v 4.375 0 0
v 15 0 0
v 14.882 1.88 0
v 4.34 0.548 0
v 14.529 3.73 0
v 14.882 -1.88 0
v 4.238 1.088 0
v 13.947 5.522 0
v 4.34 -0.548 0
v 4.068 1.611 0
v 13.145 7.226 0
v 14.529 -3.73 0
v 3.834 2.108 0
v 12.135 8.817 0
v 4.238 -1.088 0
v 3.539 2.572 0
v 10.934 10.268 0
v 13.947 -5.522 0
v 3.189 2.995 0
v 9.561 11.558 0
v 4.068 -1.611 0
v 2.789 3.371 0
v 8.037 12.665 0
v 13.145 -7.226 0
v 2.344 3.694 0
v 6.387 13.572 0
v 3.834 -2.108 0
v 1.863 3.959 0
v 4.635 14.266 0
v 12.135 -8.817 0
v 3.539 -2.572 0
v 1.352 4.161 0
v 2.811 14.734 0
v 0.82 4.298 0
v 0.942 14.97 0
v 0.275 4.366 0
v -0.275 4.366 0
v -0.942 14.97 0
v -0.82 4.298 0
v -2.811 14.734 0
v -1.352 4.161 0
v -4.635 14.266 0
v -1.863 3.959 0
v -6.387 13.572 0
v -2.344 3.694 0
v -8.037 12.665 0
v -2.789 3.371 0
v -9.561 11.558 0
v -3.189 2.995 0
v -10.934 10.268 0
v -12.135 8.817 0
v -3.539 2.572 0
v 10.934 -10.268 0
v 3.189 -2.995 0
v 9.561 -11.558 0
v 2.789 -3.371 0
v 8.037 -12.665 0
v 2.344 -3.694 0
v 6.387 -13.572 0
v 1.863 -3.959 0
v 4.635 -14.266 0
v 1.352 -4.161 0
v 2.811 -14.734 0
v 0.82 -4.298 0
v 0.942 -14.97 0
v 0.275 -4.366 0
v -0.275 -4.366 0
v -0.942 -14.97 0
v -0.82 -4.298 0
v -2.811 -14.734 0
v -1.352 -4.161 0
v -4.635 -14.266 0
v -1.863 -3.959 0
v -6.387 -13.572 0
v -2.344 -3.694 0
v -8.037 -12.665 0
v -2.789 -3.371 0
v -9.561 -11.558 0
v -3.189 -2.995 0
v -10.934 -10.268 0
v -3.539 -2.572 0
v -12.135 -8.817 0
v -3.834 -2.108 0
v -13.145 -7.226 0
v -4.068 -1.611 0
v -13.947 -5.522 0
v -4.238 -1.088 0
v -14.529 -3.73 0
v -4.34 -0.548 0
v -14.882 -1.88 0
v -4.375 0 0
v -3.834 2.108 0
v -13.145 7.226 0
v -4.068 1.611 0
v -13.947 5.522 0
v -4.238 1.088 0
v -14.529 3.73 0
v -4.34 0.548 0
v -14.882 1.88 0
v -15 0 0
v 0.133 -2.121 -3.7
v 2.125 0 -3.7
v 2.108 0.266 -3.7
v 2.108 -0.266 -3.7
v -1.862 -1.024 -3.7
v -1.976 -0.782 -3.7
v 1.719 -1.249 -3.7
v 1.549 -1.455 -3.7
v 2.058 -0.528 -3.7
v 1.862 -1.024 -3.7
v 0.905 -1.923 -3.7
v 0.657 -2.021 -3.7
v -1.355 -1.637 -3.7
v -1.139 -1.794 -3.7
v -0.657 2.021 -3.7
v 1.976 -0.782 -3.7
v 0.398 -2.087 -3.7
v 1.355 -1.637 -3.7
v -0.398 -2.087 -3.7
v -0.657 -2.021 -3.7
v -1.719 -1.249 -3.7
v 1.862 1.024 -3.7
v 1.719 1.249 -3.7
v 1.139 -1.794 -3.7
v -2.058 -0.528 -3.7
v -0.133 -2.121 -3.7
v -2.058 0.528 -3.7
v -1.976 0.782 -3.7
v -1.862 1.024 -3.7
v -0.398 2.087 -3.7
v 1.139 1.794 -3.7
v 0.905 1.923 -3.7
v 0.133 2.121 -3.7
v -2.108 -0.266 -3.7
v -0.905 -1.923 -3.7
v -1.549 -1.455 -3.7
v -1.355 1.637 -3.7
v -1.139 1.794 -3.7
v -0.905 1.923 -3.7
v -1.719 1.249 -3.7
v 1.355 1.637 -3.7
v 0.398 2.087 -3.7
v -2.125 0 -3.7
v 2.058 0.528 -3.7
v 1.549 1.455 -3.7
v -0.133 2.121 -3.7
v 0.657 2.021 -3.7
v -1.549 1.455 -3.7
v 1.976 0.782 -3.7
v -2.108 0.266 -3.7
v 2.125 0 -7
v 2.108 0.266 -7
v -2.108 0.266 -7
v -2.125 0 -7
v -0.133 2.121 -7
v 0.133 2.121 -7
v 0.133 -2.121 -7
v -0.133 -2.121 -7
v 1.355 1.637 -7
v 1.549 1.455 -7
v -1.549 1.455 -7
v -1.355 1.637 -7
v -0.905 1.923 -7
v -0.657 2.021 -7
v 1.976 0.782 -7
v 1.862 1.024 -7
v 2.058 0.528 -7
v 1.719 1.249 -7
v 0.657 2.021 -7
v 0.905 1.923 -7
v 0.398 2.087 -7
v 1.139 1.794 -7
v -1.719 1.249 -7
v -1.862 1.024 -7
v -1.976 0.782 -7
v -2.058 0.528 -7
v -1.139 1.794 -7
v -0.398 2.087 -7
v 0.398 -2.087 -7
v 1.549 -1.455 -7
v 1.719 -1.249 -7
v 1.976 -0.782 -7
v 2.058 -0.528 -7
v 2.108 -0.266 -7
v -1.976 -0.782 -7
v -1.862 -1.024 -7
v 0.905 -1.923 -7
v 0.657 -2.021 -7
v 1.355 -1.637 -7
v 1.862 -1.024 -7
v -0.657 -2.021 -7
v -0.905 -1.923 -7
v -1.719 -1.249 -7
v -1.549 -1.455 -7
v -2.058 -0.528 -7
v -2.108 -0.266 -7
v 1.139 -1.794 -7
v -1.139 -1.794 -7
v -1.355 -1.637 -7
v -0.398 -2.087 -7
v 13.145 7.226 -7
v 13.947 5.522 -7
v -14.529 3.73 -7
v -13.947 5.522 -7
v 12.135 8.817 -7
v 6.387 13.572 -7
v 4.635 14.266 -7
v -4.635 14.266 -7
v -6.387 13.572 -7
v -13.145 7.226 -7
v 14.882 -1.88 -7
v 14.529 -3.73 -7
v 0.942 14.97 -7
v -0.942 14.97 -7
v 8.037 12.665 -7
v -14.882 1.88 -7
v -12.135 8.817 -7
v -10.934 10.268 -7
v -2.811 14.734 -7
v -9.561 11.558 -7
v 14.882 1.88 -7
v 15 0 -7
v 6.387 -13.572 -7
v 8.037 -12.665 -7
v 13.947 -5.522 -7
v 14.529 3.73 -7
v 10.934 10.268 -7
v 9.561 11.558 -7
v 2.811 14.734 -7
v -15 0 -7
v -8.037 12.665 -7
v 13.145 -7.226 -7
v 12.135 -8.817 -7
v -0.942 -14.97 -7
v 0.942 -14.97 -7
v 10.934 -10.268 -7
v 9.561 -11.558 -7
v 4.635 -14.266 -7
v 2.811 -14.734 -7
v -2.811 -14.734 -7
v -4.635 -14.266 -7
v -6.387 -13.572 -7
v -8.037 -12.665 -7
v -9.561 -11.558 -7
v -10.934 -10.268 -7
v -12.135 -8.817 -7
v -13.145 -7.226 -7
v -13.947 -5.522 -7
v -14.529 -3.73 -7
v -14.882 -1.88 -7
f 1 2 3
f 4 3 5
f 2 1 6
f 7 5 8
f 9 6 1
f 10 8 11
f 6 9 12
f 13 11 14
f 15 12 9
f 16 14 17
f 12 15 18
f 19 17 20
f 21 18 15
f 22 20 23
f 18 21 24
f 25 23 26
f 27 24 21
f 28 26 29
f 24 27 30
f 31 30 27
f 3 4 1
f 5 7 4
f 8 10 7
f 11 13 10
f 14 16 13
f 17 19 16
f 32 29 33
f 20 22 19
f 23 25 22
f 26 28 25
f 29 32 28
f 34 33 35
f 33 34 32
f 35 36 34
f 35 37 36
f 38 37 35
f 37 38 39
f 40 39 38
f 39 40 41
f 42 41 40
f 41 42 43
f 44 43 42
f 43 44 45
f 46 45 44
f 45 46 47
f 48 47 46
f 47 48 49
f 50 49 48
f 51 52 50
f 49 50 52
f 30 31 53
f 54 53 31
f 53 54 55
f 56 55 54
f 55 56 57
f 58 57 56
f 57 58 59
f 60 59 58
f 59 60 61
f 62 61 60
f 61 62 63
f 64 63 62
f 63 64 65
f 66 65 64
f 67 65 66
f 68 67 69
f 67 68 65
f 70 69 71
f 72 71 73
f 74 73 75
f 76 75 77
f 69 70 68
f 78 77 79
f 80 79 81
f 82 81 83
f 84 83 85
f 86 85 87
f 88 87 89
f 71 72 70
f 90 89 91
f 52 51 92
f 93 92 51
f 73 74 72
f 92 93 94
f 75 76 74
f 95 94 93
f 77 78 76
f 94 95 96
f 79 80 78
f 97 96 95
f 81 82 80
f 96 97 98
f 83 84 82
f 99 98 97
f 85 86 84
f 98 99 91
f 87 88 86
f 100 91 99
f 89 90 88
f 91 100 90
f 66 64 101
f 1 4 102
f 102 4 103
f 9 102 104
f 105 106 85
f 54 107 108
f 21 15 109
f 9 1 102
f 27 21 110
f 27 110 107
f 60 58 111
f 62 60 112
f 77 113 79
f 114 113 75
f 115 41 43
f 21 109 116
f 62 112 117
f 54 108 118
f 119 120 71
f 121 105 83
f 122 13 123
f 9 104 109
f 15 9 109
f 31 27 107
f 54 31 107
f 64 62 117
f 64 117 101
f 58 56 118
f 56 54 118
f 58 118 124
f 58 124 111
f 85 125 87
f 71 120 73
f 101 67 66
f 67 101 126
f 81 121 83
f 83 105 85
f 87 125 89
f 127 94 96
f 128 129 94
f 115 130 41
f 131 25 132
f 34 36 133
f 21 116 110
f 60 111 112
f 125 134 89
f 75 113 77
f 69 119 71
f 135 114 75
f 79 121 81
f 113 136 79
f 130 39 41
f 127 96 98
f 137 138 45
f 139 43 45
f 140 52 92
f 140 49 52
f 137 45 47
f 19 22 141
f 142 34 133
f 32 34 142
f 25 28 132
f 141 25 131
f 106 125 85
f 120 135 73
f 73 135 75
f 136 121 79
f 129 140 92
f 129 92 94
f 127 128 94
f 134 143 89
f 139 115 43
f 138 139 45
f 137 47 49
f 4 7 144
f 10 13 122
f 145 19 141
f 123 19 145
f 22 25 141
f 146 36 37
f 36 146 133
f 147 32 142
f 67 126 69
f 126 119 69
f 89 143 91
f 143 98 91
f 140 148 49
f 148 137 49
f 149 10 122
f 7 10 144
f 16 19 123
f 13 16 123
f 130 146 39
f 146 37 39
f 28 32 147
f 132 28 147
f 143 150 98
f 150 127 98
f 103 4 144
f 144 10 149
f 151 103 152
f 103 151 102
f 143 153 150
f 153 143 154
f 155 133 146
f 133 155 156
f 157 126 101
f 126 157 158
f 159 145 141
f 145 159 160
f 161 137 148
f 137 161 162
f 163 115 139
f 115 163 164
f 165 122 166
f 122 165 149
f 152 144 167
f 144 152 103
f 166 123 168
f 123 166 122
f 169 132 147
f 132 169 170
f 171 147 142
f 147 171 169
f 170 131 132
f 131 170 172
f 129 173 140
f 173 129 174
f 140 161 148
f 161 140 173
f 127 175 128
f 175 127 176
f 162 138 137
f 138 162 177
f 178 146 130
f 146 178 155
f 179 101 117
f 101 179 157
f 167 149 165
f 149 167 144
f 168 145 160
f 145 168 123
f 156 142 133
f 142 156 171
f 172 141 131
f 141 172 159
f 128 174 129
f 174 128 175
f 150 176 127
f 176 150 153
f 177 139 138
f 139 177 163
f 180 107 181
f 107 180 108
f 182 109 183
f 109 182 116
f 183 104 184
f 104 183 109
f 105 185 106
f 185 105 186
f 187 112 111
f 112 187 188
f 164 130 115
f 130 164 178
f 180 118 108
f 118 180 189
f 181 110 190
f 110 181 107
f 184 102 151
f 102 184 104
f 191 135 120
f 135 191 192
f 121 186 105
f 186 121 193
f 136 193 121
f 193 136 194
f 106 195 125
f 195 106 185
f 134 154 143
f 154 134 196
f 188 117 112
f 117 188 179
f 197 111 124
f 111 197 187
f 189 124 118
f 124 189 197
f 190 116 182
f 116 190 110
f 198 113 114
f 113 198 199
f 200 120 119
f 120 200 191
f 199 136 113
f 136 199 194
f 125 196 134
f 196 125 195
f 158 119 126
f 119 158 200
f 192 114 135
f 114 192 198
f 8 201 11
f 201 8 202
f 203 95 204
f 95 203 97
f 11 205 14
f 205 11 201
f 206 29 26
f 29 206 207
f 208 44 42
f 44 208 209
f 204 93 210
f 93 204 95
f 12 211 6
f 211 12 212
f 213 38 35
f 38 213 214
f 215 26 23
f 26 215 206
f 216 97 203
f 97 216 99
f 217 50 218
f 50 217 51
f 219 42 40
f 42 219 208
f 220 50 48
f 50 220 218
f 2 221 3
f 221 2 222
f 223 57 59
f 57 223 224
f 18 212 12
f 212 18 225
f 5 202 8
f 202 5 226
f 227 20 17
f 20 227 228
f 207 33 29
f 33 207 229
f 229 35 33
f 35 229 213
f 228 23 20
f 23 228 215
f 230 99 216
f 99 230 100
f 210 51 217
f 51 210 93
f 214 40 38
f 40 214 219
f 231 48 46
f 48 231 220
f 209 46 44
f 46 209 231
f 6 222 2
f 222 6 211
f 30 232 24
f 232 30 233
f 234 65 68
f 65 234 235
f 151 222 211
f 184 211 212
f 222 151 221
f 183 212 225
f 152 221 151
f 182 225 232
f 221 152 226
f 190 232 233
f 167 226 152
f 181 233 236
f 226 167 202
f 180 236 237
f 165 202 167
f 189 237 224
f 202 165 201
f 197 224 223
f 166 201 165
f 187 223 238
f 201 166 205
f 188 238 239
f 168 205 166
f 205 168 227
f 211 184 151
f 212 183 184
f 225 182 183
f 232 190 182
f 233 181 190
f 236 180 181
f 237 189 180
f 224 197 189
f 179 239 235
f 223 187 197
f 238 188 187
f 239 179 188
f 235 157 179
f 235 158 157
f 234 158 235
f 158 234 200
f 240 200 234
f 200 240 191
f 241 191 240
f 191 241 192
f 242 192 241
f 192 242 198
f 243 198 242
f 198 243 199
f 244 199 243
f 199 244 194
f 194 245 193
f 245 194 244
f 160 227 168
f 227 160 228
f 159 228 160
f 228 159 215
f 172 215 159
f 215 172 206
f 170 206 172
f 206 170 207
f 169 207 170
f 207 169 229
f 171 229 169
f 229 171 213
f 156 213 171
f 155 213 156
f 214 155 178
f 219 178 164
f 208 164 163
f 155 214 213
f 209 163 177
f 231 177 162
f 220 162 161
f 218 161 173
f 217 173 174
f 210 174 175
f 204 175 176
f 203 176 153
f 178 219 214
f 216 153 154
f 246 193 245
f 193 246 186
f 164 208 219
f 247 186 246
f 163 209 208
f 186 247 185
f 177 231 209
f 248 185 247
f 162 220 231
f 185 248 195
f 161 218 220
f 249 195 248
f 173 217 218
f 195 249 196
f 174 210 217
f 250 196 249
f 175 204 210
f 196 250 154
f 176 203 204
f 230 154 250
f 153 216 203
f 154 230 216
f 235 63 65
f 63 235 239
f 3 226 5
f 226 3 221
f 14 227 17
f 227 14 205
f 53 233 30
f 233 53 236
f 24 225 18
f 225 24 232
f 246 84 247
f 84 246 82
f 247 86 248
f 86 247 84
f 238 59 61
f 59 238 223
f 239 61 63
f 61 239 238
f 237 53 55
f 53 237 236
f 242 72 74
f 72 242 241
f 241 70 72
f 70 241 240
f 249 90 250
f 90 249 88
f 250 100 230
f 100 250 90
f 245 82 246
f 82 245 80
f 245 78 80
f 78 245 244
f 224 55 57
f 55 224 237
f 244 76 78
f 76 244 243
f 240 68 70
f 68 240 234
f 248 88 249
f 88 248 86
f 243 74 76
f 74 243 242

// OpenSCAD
$fn = 50;


difference() {
	union() {
		translate(v = [0, 0, -7.0000000000]) {
			cylinder(h = 7, r = 15.0000000000);
		}
	}
	union() {
		translate(v = [0, 0, 0]) {
			rotate(a = [0, 0, 0]) {
				difference() {
					union() {
						#translate(v = [0, 0, -9.0000000000]) {
							cylinder(h = 9, r = 2.0000000000);
						}
						#translate(v = [0, 0, -3.7000000000]) {
							cylinder(h = 3.7000000000, r1 = 2.1250000000, r2 = 4.3750000000);
						}
						#translate(v = [0, 0, -9.0000000000]) {
							cylinder(h = 9, r = 2.1250000000);
						}
						#translate(v = [0, 0, -9.0000000000]) {
							cylinder(h = 9, r = 2.0000000000);
						}
					}
					union();
				}
			}
		}
	}
}
